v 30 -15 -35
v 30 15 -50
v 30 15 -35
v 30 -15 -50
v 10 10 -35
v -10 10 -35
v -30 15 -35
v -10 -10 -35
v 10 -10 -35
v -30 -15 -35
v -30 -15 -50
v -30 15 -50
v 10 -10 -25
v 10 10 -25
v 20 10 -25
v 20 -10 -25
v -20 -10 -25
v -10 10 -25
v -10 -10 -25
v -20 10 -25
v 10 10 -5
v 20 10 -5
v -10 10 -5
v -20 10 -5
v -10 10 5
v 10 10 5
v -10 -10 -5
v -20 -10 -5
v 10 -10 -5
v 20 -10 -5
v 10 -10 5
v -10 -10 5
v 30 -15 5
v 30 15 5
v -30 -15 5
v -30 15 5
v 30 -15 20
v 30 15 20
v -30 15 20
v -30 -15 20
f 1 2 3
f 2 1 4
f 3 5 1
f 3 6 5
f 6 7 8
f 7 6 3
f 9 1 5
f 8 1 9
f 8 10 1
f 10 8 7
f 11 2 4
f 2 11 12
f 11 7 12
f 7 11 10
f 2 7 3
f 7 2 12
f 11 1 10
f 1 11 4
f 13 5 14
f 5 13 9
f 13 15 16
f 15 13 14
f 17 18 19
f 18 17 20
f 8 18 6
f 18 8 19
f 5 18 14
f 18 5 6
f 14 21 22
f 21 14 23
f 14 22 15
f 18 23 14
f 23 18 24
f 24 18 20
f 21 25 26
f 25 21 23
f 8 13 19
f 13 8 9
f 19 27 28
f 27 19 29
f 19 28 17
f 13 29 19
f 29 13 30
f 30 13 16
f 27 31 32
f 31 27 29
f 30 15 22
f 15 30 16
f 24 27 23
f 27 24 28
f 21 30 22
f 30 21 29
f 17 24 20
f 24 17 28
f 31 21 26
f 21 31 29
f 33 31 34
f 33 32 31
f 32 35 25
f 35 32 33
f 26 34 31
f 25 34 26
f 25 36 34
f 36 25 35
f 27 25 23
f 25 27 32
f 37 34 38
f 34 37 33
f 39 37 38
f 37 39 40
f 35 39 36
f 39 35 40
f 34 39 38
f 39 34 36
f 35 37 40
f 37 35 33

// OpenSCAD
// Dimensions for the blocks
large_block = [60, 30, 15];  // Length, Width, Height
medium_block = [40, 20, 20];
small_block = [20, 20, 10];

// Function to create a block
module block(size) {
    cube(size, center = true);
}

// Layer 1: Large rectangular block at the bottom
// Adjusted to ensure proper alignment with the large block at the top
translate([0, 0, -50 + large_block[2] / 2])
    block(large_block);

// Layer 2: Small rectangular block above the large block
// Adjusted to ensure proper alignment and symmetry
translate([0, 0, -50 + large_block[2] + small_block[2] / 2])
    block(small_block);

// Layer 3: Medium rectangular block above the small block
// Adjusted to ensure proper centering and alignment
translate([0, 0, -50 + large_block[2] + small_block[2] + medium_block[2] / 2])
    block(medium_block);

// Layer 4: Second small rectangular block above the medium block
// Adjusted to ensure proper alignment and symmetry
translate([0, 0, -50 + large_block[2] + small_block[2] + medium_block[2] + small_block[2] / 2])
    block(small_block);

// Layer 5: Second large rectangular block at the top
// Adjusted to ensure proper alignment with the large block at the bottom
translate([0, 0, -50 + large_block[2] + small_block[2] + medium_block[2] + small_block[2] + large_block[2] / 2])
    block(large_block);
